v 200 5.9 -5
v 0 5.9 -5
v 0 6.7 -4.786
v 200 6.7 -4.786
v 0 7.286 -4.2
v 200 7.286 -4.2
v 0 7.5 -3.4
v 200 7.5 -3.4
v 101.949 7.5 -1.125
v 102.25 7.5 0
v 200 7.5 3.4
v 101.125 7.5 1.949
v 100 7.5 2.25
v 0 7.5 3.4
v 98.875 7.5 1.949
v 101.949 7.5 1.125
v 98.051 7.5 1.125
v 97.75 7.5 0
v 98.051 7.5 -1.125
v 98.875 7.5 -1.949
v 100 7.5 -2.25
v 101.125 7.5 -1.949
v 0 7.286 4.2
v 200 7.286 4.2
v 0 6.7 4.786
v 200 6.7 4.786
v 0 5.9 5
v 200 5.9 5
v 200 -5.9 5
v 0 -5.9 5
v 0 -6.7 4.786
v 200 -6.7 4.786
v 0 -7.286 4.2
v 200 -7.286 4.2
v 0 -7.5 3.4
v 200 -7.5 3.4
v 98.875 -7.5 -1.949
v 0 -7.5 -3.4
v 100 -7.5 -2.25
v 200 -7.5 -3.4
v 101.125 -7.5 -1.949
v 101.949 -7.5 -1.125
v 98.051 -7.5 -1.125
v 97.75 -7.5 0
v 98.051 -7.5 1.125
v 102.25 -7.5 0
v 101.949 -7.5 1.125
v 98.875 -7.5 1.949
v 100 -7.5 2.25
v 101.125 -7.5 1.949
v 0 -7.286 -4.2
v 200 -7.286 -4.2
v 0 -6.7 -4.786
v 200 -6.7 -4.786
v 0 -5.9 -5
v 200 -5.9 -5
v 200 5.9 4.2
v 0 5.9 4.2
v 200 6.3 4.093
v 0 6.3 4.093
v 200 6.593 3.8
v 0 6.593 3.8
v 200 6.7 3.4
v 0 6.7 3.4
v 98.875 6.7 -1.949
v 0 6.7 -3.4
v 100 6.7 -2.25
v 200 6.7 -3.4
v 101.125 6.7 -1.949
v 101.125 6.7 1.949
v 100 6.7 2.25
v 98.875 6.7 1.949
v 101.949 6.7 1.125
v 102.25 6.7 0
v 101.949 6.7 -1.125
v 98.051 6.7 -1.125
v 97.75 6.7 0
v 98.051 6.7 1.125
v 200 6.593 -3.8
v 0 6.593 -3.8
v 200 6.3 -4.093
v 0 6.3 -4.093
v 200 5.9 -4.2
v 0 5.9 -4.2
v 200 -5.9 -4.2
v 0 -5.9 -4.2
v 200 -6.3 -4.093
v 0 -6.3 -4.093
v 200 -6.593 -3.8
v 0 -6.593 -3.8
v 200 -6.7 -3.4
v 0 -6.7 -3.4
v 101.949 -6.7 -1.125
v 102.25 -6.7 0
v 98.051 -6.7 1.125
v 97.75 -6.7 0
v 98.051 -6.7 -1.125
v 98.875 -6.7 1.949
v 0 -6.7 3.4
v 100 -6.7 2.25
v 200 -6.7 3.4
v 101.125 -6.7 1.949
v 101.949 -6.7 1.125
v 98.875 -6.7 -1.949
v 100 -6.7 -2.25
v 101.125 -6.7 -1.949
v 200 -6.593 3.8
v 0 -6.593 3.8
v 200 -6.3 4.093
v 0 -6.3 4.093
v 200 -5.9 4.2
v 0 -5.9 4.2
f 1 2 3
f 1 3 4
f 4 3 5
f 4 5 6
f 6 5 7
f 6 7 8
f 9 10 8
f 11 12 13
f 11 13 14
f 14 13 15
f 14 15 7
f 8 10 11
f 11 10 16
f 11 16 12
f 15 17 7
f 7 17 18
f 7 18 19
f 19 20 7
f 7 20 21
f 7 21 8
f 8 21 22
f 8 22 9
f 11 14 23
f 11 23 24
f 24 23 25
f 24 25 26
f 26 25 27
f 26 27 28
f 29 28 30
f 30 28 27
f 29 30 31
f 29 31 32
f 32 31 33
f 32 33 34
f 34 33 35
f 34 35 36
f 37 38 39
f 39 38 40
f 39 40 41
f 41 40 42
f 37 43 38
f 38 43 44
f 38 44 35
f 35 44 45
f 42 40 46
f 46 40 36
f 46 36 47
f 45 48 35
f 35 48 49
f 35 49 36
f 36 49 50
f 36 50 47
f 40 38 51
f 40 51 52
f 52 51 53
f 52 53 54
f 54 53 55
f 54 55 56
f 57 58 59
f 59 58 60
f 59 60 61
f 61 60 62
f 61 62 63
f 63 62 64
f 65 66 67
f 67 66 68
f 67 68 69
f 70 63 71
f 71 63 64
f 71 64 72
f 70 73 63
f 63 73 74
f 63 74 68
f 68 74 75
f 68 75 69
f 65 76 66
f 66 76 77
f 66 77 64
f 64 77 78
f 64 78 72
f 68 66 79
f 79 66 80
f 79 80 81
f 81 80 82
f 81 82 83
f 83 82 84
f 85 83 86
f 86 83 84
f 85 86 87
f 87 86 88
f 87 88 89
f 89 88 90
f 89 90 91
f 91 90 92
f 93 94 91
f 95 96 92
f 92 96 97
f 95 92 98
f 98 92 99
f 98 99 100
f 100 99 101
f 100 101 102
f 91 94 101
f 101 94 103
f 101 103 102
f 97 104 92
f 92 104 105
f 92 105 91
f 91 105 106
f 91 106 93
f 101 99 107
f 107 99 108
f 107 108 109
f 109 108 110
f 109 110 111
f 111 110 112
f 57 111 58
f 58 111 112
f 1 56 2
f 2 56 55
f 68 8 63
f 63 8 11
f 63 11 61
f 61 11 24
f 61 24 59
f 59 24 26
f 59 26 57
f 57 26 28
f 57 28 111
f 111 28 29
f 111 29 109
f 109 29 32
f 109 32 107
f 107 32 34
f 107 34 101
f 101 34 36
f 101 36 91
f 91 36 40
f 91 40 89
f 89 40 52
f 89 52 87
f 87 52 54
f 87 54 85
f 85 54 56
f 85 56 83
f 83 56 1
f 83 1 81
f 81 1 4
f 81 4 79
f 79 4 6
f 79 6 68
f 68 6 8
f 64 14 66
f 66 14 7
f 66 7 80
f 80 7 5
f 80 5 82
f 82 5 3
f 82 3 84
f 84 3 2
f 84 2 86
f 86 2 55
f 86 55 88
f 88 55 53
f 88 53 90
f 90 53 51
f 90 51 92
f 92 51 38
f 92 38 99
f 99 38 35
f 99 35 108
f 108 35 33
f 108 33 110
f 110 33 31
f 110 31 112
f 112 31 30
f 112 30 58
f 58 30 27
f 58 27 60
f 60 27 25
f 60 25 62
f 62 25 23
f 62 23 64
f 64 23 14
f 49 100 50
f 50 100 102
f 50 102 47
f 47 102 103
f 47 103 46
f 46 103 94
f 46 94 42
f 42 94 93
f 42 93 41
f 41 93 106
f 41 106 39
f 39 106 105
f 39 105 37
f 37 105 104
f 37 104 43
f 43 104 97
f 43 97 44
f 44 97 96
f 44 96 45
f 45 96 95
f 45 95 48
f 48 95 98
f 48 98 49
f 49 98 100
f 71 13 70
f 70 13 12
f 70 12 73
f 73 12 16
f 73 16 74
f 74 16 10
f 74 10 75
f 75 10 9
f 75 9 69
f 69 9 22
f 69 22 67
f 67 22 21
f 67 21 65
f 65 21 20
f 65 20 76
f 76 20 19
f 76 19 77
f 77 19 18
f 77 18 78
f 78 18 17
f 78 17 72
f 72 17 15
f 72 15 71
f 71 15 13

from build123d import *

# Parameters (mm, degrees)
DIKD_RTGEN_T_P_60_X_40_X_3_2_1_DEPTH = 800
IZIM3_R                              = 9
KES_EKSTR_ZYON1_DEPTH                = 50
SCALE1_SCALE                         = 0.25


with BuildPart() as part:
    # Sketch1 → Dikdörtgen tüp 60 X 40 X 3.2(1) (new body)
    with BuildSketch(Plane(origin=(0, 0, 0), x_dir=(0, 0, -1), z_dir=(1, 0, 0))):
        with BuildLine():
            Line((-13.6, -30), (13.6, -30))
            ThreePointArc((13.6, -30), (18.1254834, -28.1254834), (20, -23.6))
            Line((20, -23.6), (20, 23.6))
            ThreePointArc((20, 23.6), (18.1254834, 28.1254834), (13.6, 30))
            Line((13.6, 30), (-13.6, 30))
            ThreePointArc((-13.6, 30), (-18.1254834, 28.1254834), (-20, 23.6))
            Line((-20, 23.6), (-20, -23.6))
            ThreePointArc((-20, -23.6), (-18.1254834, -28.1254834), (-13.6, -30))
        make_face()
        with BuildLine():
            Line((-13.6, -26.8), (13.6, -26.8))
            ThreePointArc((13.6, -26.8), (15.8627417, -25.8627417), (16.8, -23.6))
            Line((16.8, -23.6), (16.8, 23.6))
            ThreePointArc((16.8, 23.6), (15.8627417, 25.8627417), (13.6, 26.8))
            Line((13.6, 26.8), (-13.6, 26.8))
            ThreePointArc((-13.6, 26.8), (-15.8627417, 25.8627417), (-16.8, 23.6))
            Line((-16.8, 23.6), (-16.8, -23.6))
            ThreePointArc((-16.8, -23.6), (-15.8627417, -25.8627417), (-13.6, -26.8))
        make_face(mode=Mode.SUBTRACT)
    extrude(amount=DIKD_RTGEN_T_P_60_X_40_X_3_2_1_DEPTH)

    # Çizim3 → Kes-Ekstrüzyon1 (cut, symmetric)
    with BuildSketch(Plane(origin=(0, 0, 0), x_dir=(1, 0, 0), z_dir=(0, 1, 0))):
        with Locations(Location((400, 0, 0), (0, 0, 270))):
            Circle(IZIM3_R)
    extrude(amount=KES_EKSTR_ZYON1_DEPTH, both=True, mode=Mode.SUBTRACT)


with BuildPart() as part_1:
    # Scale1: scaled about (0, 0, 0)
    add(part.part.scale(SCALE1_SCALE))


solid = part_1.part
